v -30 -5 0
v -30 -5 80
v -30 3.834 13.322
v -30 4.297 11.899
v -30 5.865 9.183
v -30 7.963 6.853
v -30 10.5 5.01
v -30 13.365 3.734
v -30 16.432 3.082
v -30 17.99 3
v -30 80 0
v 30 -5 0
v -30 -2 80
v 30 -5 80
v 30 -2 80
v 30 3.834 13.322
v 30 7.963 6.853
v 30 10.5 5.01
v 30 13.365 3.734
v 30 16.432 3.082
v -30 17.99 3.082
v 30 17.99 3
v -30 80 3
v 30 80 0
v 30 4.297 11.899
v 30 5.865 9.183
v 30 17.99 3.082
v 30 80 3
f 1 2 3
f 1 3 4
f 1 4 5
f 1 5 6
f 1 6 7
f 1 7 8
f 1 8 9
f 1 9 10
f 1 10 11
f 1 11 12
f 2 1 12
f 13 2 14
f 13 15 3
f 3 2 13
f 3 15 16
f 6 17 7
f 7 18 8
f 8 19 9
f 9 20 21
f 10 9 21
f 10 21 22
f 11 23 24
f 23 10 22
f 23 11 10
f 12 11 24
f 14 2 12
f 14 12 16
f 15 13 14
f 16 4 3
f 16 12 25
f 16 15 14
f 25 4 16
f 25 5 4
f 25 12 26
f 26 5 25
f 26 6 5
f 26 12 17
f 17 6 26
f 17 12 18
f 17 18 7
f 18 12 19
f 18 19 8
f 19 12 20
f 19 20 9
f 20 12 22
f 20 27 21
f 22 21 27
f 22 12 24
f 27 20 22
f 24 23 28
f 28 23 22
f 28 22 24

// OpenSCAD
include <BOSL/constants.scad>
use <BOSL/shapes.scad>

wall=3;
w=80;
h=w;
d=60;

union() {
  prismoid(size1=[d,10], size2=[d,wall], shift=[0,-(10-wall)/2], h=h);
  translate([-d/2,0,0]) {
    cube([d,w,wall]);
    /* cube([d,wall,h]); */
  }
  translate([0,wall,wall]) interior_fillet(l=d,r=15);
}
